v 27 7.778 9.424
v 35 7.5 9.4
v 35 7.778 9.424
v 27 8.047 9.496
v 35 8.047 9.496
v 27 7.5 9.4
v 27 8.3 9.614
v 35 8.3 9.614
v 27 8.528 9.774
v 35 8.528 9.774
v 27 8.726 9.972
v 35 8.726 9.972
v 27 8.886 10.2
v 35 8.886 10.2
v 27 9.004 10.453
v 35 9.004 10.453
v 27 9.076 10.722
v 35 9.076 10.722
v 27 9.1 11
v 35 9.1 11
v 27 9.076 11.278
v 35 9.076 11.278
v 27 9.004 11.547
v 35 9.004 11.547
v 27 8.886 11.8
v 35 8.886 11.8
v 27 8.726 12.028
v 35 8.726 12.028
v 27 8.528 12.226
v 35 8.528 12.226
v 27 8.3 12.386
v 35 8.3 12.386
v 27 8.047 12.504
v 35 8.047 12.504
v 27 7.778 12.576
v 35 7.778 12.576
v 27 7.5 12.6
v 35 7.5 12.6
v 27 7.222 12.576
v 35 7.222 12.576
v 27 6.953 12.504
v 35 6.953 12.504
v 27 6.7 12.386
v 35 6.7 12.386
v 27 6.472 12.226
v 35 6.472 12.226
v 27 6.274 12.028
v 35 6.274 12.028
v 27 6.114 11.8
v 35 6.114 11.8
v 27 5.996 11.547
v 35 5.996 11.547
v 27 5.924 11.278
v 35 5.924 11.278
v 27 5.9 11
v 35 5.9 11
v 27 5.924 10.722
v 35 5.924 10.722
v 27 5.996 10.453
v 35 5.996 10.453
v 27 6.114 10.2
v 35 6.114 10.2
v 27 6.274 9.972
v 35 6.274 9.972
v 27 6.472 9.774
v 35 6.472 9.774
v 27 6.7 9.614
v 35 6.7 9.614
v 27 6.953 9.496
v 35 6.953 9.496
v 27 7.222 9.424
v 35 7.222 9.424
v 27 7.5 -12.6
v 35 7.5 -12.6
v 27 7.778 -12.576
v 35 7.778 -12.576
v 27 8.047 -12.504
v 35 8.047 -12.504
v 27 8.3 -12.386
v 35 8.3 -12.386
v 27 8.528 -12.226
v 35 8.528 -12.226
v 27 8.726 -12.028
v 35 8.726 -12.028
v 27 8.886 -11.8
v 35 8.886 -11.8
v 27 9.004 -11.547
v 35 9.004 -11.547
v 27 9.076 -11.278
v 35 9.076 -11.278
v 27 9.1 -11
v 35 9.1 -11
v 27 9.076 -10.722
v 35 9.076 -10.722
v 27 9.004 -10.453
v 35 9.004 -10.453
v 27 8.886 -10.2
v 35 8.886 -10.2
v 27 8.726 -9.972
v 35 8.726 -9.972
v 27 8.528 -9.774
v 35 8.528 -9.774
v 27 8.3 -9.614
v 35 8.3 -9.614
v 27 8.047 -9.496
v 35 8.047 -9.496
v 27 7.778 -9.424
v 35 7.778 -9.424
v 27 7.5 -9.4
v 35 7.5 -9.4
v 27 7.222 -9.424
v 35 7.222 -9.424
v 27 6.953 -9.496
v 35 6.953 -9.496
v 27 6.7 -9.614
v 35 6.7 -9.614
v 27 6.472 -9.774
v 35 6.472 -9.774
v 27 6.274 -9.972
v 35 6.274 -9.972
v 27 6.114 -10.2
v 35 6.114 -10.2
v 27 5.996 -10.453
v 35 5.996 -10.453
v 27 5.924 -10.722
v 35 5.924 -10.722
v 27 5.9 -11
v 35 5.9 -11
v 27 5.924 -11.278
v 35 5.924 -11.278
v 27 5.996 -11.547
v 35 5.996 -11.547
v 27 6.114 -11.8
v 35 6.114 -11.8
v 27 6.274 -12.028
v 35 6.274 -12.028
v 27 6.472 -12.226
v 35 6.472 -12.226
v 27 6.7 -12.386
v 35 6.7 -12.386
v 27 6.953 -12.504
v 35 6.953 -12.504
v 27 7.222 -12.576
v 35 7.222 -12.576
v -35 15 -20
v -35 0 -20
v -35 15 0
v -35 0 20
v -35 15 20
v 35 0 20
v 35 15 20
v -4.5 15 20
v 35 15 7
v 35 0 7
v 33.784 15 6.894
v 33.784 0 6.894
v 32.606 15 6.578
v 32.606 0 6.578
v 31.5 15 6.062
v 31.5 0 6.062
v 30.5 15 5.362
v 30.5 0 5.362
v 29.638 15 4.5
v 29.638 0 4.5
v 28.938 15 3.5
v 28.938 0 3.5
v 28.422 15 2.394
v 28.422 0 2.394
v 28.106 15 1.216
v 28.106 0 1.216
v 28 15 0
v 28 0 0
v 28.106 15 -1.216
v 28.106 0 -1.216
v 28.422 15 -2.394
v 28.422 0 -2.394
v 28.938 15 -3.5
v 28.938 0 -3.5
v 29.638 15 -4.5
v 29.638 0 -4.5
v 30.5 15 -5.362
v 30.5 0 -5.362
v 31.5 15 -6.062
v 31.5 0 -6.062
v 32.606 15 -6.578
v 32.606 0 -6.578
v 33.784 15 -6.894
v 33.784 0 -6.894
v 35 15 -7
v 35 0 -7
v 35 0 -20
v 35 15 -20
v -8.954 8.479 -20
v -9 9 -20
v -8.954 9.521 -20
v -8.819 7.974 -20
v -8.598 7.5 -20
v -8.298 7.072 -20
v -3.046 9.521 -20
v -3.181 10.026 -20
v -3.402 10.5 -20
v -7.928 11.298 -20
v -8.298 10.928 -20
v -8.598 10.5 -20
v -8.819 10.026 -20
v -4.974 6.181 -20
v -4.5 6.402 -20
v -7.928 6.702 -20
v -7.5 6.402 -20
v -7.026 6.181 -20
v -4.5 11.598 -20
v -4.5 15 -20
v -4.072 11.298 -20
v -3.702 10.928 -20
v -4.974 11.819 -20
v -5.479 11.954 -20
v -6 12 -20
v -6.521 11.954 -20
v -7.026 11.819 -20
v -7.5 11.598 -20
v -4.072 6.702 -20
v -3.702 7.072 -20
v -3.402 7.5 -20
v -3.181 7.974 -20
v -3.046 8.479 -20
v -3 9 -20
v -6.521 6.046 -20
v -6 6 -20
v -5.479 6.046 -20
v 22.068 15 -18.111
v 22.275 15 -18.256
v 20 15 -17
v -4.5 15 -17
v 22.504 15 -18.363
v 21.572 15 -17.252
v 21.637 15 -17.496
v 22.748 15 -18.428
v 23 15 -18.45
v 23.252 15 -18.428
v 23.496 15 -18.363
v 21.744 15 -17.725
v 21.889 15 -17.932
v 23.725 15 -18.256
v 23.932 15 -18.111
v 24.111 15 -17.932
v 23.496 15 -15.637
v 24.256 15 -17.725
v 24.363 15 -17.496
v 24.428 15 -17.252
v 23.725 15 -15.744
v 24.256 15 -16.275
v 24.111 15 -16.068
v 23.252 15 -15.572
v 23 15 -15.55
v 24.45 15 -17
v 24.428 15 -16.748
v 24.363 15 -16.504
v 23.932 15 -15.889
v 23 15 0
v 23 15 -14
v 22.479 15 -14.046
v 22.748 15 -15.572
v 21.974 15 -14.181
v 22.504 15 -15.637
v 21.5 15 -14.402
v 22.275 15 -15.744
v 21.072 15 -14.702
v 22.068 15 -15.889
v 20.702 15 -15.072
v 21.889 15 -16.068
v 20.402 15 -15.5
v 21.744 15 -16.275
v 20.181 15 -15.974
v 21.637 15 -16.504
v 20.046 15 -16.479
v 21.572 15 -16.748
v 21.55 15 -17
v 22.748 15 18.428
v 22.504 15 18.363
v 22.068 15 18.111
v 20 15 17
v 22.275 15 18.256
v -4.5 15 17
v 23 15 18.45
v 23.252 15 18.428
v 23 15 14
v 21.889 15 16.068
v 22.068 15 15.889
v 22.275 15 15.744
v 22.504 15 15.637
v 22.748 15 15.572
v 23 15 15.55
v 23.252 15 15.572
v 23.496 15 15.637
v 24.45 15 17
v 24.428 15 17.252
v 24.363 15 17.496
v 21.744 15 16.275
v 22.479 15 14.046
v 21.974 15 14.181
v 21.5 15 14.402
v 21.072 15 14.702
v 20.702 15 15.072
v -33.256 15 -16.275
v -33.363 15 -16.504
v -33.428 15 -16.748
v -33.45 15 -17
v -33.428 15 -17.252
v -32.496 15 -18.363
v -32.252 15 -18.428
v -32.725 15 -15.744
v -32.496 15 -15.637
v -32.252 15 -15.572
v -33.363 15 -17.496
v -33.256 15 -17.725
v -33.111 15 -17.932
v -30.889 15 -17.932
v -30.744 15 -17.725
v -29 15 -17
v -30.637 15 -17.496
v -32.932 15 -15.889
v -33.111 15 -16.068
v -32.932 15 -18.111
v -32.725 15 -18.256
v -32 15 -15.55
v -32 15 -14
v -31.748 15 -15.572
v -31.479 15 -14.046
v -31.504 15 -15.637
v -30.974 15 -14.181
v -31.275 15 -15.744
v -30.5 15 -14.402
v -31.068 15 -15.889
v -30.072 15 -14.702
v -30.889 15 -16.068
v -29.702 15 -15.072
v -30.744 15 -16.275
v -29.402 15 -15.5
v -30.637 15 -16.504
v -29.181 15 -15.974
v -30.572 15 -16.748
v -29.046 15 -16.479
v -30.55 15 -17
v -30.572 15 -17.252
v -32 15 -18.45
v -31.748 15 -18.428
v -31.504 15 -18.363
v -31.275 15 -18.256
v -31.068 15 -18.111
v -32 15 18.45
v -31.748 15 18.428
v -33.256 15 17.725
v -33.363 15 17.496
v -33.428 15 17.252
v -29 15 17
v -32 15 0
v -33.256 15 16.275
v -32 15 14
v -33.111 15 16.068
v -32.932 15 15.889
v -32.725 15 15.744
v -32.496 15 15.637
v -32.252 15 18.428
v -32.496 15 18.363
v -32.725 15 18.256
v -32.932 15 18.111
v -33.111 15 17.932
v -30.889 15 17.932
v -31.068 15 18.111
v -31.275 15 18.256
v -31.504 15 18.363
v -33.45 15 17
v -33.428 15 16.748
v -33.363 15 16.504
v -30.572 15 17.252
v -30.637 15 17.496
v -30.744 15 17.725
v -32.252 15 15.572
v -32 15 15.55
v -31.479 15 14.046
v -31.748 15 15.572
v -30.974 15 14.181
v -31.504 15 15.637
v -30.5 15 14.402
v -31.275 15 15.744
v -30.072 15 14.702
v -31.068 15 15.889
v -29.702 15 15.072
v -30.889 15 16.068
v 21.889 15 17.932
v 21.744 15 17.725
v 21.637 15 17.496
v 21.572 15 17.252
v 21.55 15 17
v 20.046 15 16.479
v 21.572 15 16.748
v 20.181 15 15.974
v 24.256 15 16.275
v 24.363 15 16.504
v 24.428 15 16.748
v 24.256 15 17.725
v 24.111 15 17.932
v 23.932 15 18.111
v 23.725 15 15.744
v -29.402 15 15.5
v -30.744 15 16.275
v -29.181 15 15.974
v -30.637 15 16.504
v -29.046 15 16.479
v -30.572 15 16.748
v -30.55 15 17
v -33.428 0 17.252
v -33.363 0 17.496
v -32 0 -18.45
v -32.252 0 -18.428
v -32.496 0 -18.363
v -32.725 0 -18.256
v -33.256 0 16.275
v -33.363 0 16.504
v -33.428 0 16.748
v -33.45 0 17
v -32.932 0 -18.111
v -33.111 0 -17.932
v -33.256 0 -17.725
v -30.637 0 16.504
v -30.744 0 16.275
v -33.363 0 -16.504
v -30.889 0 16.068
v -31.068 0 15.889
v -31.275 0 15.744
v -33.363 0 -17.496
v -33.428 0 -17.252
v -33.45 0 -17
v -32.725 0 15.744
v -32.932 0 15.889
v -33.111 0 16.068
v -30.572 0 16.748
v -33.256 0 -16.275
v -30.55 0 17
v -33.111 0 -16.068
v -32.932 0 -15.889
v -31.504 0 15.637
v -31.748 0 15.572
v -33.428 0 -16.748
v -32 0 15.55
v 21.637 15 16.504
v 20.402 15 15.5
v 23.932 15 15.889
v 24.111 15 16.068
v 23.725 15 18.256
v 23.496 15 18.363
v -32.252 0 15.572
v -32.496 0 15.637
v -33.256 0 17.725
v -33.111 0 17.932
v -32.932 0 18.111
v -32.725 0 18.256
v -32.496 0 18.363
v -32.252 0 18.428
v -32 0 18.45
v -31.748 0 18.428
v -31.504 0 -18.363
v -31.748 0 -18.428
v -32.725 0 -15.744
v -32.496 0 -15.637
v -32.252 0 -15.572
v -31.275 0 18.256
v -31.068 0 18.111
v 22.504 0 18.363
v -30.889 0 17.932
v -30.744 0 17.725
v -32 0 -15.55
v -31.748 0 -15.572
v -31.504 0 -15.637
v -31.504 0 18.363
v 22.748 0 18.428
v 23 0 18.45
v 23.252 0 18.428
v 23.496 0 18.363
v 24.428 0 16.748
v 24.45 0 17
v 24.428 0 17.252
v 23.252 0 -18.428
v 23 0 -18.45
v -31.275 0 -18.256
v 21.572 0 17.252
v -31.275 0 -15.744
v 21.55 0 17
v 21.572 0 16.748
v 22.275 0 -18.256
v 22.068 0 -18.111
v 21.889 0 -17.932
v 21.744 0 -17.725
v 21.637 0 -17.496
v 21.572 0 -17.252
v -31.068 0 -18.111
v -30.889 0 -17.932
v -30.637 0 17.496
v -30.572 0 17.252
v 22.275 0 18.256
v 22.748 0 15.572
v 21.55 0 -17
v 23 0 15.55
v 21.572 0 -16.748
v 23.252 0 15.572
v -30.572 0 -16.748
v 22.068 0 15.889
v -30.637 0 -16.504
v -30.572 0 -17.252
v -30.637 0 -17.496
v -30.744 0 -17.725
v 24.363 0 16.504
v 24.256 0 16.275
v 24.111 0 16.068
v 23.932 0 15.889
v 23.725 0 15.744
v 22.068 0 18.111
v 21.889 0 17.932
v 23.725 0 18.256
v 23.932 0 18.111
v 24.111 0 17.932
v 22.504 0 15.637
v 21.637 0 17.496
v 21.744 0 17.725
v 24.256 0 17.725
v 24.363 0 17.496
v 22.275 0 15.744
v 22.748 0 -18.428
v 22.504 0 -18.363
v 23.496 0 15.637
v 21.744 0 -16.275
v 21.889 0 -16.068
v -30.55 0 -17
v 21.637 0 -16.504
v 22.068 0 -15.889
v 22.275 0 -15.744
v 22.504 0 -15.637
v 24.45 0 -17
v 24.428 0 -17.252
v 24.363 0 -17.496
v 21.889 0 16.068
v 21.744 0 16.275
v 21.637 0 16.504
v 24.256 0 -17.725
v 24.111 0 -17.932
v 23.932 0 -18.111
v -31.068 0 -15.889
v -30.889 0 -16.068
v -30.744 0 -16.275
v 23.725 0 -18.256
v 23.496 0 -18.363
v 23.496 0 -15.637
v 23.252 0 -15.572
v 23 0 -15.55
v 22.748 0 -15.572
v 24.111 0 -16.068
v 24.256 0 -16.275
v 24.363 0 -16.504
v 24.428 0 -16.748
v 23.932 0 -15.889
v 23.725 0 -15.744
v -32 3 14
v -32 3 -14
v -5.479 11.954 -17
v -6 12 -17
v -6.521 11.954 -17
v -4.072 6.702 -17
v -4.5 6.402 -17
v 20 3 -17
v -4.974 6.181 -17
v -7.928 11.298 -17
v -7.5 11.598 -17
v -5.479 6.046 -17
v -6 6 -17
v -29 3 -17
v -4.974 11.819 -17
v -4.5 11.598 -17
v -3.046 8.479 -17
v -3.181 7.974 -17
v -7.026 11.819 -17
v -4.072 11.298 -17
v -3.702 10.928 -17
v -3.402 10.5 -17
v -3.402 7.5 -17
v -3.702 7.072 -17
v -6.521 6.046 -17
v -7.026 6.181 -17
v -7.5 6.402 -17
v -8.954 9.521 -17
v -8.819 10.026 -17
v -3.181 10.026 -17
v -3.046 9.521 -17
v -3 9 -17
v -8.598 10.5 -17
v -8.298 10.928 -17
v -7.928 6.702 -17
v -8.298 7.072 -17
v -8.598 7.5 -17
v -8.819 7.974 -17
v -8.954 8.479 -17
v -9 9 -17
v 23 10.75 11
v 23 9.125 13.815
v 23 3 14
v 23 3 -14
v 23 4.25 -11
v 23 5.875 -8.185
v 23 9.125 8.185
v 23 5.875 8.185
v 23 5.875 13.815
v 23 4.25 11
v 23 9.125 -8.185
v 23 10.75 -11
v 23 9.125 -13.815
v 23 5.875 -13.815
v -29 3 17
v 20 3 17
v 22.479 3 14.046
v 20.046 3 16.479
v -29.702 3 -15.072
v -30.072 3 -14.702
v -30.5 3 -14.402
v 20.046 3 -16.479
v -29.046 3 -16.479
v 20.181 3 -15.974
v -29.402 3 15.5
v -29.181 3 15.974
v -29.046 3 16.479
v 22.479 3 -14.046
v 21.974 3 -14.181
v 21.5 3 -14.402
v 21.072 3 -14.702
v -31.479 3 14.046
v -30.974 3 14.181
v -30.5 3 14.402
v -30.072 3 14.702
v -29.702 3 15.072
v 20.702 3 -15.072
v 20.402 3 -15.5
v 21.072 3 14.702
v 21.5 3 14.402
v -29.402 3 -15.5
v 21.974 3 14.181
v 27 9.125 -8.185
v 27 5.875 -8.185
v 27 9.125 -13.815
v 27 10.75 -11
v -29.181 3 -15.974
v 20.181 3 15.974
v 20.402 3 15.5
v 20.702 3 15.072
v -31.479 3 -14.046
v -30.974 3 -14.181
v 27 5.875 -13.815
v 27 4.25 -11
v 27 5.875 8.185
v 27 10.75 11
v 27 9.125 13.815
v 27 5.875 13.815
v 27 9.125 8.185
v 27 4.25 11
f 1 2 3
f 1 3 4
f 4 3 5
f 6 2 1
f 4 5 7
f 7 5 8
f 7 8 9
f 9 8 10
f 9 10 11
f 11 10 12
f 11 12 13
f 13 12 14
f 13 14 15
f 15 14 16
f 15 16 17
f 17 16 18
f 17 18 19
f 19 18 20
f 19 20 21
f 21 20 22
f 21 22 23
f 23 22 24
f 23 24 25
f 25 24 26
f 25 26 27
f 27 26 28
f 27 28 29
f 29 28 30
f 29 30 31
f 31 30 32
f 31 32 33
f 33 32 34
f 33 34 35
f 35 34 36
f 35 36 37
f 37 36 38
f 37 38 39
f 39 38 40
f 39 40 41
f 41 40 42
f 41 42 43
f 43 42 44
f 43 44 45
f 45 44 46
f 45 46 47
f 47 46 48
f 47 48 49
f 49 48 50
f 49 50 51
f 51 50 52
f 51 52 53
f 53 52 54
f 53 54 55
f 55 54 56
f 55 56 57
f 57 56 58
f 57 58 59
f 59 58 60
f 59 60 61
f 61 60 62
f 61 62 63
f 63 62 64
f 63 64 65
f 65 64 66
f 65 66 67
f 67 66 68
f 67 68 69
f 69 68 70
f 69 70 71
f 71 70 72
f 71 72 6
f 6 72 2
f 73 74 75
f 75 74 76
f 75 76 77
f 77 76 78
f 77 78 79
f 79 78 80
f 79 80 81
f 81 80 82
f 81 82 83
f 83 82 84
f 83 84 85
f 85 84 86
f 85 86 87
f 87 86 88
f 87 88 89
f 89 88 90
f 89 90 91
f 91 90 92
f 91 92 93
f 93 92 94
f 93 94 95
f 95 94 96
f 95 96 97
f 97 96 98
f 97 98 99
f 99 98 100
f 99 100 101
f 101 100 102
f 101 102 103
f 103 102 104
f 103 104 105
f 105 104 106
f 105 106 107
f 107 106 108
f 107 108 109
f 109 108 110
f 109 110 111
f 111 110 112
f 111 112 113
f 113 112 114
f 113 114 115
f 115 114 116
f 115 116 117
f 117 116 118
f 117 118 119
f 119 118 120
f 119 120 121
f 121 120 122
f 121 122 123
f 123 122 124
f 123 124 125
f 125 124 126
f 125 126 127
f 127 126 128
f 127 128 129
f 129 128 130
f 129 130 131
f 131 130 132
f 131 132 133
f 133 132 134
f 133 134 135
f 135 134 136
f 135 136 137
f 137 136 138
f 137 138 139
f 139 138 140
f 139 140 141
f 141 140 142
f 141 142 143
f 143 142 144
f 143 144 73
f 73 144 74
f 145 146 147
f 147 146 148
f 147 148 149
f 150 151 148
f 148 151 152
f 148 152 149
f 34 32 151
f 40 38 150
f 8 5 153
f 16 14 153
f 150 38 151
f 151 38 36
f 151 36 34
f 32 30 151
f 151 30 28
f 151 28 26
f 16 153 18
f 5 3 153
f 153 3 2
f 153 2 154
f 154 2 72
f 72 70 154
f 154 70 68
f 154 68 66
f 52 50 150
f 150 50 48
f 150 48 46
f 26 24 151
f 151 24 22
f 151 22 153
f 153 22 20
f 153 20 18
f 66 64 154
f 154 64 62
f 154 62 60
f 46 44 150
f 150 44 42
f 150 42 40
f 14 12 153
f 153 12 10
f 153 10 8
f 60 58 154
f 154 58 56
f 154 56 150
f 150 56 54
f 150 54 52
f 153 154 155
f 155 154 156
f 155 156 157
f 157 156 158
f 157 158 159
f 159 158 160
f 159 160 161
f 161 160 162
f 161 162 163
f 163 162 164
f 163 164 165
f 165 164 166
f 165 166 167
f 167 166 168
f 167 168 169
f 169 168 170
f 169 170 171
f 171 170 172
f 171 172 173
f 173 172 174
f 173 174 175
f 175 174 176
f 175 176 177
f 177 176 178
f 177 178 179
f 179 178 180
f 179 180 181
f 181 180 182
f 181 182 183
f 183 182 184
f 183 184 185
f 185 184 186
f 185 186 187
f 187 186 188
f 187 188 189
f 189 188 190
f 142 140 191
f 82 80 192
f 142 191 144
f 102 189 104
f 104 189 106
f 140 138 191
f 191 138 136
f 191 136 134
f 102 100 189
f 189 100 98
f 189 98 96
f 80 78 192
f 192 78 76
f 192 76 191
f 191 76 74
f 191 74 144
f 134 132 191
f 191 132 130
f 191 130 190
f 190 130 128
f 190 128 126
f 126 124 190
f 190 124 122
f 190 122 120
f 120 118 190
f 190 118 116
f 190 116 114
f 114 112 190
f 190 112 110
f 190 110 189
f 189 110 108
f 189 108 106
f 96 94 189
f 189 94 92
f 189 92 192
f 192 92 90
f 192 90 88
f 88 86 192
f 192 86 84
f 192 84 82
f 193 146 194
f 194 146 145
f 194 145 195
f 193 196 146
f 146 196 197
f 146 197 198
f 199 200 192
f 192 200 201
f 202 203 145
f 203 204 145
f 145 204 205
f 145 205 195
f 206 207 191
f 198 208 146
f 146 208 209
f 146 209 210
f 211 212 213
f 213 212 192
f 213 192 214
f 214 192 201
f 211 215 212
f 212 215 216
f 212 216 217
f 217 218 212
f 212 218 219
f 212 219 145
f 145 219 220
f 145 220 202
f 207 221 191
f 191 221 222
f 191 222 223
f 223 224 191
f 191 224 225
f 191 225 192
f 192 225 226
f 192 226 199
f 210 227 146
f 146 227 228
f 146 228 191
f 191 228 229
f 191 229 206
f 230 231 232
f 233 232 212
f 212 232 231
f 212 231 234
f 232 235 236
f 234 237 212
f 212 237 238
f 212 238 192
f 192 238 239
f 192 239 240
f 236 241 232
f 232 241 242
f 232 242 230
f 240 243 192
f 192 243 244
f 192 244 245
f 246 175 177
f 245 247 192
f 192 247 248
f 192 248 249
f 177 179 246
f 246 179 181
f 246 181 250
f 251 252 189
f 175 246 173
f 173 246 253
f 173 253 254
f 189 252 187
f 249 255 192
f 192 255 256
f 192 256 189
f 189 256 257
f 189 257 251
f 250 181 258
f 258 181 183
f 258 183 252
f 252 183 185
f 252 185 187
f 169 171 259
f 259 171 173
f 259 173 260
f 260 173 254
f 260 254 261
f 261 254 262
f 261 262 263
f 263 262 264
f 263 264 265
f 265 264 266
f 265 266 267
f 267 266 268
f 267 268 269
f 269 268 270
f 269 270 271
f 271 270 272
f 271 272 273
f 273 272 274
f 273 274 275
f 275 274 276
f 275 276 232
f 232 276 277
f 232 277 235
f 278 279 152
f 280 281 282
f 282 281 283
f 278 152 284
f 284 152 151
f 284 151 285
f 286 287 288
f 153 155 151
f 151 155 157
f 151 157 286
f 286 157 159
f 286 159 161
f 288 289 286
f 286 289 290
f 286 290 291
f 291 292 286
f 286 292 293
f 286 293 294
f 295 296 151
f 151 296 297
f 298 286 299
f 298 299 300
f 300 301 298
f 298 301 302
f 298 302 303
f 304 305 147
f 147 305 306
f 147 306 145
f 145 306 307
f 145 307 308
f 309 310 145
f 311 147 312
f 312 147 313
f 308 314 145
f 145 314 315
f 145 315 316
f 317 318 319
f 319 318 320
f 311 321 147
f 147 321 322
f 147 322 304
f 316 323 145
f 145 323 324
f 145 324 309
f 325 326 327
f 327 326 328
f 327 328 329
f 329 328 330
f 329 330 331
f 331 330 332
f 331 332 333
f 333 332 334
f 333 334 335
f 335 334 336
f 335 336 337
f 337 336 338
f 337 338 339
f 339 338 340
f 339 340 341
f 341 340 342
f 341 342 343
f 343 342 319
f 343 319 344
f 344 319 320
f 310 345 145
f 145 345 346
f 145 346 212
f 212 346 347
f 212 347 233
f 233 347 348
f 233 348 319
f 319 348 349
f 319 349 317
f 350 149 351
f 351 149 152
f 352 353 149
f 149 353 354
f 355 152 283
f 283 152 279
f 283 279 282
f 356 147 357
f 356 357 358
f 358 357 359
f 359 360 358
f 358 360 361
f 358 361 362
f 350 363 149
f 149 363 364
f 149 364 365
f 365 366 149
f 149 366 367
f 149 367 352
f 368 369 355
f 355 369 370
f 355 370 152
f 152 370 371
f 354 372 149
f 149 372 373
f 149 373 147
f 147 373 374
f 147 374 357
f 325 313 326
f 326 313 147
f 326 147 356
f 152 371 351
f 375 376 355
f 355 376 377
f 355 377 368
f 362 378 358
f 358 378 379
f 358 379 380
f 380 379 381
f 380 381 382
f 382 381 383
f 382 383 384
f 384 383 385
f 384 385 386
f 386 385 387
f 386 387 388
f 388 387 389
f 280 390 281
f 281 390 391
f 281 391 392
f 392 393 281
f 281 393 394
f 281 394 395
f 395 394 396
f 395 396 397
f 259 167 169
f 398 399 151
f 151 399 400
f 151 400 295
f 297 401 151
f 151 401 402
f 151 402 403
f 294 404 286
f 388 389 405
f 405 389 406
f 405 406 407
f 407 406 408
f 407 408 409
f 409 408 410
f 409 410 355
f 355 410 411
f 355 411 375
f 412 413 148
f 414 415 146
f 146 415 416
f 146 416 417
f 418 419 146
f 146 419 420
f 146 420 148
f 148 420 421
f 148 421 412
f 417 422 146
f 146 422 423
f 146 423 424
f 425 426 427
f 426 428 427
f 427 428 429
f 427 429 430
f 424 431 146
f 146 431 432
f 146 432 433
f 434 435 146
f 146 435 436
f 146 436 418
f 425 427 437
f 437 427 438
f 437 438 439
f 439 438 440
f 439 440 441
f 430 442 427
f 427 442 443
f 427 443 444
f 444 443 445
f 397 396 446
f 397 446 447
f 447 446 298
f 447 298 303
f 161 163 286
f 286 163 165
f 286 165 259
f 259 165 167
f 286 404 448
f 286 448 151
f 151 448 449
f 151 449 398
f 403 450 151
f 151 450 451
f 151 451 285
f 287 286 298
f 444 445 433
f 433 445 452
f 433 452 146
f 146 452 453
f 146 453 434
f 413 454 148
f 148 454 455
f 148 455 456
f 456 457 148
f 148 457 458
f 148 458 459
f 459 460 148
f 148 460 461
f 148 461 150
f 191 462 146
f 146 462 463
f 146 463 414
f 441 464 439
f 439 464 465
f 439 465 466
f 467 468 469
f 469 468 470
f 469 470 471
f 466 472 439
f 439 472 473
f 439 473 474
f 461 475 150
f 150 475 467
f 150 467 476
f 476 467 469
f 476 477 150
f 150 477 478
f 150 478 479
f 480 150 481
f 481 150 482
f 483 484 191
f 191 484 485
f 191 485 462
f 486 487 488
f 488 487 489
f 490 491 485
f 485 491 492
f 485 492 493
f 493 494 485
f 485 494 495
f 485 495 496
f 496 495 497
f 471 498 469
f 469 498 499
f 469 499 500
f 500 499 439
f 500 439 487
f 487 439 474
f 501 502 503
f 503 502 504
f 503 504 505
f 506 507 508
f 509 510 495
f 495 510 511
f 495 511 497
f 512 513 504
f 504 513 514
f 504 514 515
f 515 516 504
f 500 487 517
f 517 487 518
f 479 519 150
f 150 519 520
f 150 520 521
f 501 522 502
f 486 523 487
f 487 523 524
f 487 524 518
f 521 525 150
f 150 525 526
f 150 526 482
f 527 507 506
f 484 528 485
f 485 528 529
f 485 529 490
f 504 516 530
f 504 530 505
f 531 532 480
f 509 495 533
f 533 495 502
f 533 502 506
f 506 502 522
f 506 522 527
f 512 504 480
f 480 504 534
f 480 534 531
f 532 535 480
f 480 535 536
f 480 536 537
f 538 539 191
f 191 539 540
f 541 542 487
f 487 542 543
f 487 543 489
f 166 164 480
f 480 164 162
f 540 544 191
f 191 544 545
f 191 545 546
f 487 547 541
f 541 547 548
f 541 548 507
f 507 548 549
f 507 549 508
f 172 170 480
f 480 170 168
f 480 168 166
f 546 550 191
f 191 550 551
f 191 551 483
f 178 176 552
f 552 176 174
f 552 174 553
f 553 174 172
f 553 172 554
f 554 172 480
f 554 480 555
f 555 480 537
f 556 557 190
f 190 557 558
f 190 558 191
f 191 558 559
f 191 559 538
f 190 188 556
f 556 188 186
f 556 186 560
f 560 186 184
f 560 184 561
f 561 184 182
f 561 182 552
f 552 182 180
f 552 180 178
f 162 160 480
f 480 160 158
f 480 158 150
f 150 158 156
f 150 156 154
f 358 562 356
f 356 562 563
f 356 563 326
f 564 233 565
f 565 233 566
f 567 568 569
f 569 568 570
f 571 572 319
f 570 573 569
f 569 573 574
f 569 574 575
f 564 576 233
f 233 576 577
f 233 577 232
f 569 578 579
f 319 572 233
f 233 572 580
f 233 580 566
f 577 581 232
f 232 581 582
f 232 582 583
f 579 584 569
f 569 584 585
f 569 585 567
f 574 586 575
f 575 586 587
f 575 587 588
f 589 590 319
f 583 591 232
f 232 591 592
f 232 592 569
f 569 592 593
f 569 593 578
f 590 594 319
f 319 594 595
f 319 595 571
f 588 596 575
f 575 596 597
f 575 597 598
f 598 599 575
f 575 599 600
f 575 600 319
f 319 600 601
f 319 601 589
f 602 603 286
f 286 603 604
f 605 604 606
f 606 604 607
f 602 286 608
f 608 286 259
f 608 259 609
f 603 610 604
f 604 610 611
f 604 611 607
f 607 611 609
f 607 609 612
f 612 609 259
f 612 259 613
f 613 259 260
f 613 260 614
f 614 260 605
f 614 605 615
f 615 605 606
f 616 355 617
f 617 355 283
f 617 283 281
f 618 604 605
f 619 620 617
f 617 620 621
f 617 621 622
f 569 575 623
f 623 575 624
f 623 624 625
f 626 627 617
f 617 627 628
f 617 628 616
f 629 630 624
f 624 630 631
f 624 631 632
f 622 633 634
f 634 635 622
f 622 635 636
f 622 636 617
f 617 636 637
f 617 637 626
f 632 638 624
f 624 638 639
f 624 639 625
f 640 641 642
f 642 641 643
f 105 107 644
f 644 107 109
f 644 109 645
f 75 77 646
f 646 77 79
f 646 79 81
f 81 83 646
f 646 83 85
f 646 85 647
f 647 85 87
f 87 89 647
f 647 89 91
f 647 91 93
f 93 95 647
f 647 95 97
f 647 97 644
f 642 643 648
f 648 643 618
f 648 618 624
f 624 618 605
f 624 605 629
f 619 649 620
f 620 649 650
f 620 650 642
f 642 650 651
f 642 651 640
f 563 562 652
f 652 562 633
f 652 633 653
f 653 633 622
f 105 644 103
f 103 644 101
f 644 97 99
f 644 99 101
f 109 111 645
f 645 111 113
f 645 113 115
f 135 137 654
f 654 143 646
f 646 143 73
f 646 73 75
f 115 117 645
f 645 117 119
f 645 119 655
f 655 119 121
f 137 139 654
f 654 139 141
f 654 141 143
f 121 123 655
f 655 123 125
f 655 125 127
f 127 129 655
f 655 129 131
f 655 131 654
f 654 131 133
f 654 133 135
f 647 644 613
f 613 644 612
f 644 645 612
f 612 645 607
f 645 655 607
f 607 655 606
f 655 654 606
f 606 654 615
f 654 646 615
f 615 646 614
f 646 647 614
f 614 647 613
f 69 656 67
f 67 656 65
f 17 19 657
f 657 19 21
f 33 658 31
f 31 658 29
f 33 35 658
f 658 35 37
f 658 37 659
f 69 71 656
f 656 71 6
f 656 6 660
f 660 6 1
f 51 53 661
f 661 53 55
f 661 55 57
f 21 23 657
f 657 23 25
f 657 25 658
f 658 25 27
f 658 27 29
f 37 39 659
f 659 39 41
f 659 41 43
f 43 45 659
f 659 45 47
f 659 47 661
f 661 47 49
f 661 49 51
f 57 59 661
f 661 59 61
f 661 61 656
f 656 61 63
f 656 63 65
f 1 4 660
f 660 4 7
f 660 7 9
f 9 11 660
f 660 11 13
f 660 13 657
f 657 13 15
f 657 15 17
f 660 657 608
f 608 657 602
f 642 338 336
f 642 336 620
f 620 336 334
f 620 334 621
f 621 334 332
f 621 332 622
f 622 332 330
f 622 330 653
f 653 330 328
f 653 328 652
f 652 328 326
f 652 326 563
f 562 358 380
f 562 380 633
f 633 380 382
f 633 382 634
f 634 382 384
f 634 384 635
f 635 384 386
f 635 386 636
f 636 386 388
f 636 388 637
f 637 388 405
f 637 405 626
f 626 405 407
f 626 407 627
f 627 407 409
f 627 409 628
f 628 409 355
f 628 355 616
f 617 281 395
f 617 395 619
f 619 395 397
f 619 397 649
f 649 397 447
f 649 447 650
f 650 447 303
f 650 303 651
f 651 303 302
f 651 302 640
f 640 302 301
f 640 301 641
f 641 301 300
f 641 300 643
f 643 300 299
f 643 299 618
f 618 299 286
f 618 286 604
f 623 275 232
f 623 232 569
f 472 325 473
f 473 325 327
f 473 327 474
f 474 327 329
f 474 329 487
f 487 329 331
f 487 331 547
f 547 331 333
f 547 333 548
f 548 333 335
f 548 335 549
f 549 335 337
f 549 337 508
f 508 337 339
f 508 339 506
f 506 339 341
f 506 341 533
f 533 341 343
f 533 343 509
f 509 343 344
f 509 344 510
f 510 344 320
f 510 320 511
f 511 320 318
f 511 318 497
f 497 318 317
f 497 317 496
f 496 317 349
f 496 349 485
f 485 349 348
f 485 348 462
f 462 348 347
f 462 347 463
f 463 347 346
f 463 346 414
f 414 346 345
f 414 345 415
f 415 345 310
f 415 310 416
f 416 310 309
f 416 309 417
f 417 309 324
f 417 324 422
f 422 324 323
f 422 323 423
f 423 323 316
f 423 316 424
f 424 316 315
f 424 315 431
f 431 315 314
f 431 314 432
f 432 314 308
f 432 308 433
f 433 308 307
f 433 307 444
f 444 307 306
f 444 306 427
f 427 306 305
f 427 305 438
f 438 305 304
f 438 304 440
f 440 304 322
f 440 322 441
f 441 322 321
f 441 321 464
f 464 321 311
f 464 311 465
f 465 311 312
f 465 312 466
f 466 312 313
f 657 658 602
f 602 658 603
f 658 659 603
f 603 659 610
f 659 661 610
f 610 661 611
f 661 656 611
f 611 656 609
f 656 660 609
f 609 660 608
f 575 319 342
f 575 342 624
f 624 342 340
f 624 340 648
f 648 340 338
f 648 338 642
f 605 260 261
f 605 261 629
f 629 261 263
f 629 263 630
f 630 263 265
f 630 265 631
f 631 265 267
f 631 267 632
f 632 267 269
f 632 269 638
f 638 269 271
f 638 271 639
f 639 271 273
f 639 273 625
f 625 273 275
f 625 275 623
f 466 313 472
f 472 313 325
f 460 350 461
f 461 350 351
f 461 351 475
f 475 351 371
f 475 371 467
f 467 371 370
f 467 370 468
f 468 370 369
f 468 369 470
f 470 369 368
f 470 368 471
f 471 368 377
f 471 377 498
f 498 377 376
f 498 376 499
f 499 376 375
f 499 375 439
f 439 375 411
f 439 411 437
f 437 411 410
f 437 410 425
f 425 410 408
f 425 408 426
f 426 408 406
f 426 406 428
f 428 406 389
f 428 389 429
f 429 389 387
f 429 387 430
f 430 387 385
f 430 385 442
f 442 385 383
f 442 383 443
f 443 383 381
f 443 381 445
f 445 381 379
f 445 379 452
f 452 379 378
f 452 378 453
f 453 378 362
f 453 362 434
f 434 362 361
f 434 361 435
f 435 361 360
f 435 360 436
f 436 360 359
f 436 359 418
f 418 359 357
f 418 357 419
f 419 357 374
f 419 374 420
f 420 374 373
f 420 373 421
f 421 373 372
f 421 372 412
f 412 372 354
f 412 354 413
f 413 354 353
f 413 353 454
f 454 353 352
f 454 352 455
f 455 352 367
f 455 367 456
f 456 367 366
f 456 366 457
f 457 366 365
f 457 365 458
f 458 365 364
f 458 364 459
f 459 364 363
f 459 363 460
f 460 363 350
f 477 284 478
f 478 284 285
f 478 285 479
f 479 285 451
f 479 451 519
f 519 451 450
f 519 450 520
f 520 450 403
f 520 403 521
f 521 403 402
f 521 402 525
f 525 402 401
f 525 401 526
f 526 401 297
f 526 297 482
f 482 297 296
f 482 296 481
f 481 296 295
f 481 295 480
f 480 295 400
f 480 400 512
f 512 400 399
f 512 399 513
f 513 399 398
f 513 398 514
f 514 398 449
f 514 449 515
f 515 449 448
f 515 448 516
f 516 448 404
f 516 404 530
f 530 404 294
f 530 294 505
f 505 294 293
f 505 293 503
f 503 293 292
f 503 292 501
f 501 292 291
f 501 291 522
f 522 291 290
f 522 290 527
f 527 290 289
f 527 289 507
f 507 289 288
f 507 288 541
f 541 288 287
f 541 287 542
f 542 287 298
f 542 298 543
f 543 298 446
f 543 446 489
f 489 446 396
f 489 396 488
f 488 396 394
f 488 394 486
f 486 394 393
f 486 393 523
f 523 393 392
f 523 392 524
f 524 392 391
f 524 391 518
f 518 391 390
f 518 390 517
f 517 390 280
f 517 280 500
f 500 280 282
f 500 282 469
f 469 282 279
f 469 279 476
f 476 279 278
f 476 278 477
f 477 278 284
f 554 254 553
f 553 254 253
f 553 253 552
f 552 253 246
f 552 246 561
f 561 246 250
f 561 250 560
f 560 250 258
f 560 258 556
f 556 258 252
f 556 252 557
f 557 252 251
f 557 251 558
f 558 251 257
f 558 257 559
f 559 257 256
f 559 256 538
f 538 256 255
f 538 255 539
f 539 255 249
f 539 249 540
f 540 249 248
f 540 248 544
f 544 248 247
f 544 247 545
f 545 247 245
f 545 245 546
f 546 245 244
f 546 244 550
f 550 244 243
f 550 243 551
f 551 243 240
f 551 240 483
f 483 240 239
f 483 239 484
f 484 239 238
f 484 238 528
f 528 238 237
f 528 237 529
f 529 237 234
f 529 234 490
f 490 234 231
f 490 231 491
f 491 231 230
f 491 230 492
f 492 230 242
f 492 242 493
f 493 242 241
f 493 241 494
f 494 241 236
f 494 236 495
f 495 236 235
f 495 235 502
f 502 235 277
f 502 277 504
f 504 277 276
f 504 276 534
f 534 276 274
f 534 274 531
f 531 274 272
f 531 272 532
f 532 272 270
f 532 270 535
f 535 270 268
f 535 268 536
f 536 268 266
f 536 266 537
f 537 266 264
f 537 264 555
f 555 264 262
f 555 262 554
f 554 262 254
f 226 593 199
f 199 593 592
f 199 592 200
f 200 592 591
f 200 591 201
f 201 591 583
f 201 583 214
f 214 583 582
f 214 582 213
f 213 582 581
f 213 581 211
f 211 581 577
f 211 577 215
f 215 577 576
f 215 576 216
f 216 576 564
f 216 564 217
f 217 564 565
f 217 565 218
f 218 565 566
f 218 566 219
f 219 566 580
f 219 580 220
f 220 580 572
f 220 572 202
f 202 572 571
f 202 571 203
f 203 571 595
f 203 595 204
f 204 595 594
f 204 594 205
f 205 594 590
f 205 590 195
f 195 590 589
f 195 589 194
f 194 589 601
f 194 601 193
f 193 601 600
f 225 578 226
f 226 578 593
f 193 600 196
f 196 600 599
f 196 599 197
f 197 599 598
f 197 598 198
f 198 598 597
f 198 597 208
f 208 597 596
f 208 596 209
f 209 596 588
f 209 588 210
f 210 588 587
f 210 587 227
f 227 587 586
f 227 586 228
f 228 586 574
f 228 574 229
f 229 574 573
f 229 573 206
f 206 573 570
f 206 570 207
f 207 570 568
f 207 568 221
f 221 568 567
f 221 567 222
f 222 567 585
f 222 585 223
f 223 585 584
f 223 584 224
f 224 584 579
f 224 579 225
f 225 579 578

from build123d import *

# Parameters (mm, degrees)
BOSS_EXTRUDE1_DEPTH = 15
SKETCH2_W           = 55
SKETCH2_H           = 34
CUT_EXTRUDE1_DEPTH  = 12
CUT_EXTRUDE2_REACH  = 72
SKETCH4_R           = 1.6
CUT_EXTRUDE3_DEPTH  = 4
BOSS_EXTRUDE3_REACH = 17
SKETCH7_R           = 1.45
CUT_EXTRUDE4_DEPTH  = 16
SKETCH8_R           = 3
CUT_EXTRUDE5_DEPTH  = 4


with BuildPart() as part:
    # Sketch1 → Boss-Extrude1 (new body)
    with BuildSketch(Plane(origin=(0, 0, 0), x_dir=(1, 0, 0), z_dir=(0, 1, 0))):
        with BuildLine():
            Line((35, 20), (35, 7))
            ThreePointArc((35, 7), (28, 0), (35, -7))
            Line((35, -7), (35, -20))
            Line((35, -20), (-35, -20))
            Line((-35, -20), (-35, 20))
            Line((-35, 20), (35, 20))
        make_face()
    extrude(amount=BOSS_EXTRUDE1_DEPTH)

    # Sketch2 → Cut-Extrude1 (cut)
    with BuildSketch(Plane(origin=(0, 15, 0), x_dir=(1, 0, 0), z_dir=(0, 1, 0))):
        with Locations((-4.5, 0)):
            Rectangle(SKETCH2_W, SKETCH2_H)
    extrude(amount=-CUT_EXTRUDE1_DEPTH, mode=Mode.SUBTRACT)

    # Sketch4 → Cut-Extrude2 (cut, up to next)
    with BuildSketch(Plane(origin=(35, 0, 0), x_dir=(0, 0, -1), z_dir=(1, 0, 0)), mode=Mode.PRIVATE) as cut_extrude2_sk1:
        with Locations((11, 7.5)):
            Circle(SKETCH4_R)
    cut_extrude2_tool1 = extrude(cut_extrude2_sk1.sketch, amount=-CUT_EXTRUDE2_REACH, mode=Mode.PRIVATE) & part.part
    add(cut_extrude2_tool1.solids().sort_by_distance((35, 7.5, -11))[0], mode=Mode.SUBTRACT)
    # Sketch4 → Cut-Extrude2 (cut, up to next)
    with BuildSketch(Plane(origin=(35, 0, 0), x_dir=(0, 0, -1), z_dir=(1, 0, 0)), mode=Mode.PRIVATE) as cut_extrude2_sk2:
        with Locations((-11, 7.5)):
            Circle(SKETCH4_R)
    cut_extrude2_tool2 = extrude(cut_extrude2_sk2.sketch, amount=-CUT_EXTRUDE2_REACH, mode=Mode.PRIVATE) & part.part
    add(cut_extrude2_tool2.solids().sort_by_distance((35, 7.5, 11))[0], mode=Mode.SUBTRACT)

    # Sketch5 → Cut-Extrude3 (cut)
    with BuildSketch(Plane.ZY.offset(-23)):
        Polygon((-11, 10.75), (-13.814582562, 9.125), (-13.814582562, 5.875), (-11, 4.25), (-8.185417438, 5.875), (-8.185417438, 9.125), align=None)
        Polygon((8.185417438, 9.125), (8.185417438, 5.875), (11, 4.25), (13.814582562, 5.875), (13.814582562, 9.125), (11, 10.75), align=None)
    extrude(amount=-CUT_EXTRUDE3_DEPTH, mode=Mode.SUBTRACT)

    # Sketch6 → Boss-Extrude3 (add, up to next)
    with BuildSketch(Plane(origin=(0, 15, 0), x_dir=(1, 0, 0), z_dir=(0, 1, 0)), mode=Mode.PRIVATE) as boss_extrude3_sk1:
        with BuildLine():
            Line((-32, -14), (-32, -17))
            Line((-32, -17), (-29, -17))
            ThreePointArc((-29, -17), (-29.878679656, -14.878679656), (-32, -14))
        make_face()
    boss_extrude3_tool1 = extrude(boss_extrude3_sk1.sketch, amount=-BOSS_EXTRUDE3_REACH, mode=Mode.PRIVATE) - part.part
    add(boss_extrude3_tool1.solids().sort_by_distance((-30.72676, 15, 15.72676))[0])
    # Sketch6 → Boss-Extrude3 (add, up to next)
    with BuildSketch(Plane(origin=(0, 15, 0), x_dir=(1, 0, 0), z_dir=(0, 1, 0)), mode=Mode.PRIVATE) as boss_extrude3_sk2:
        with BuildLine():
            Line((23, -14), (23, -17))
            Line((23, -17), (20, -17))
            ThreePointArc((20, -17), (20.878679656, -14.878679656), (23, -14))
        make_face()
    boss_extrude3_tool2 = extrude(boss_extrude3_sk2.sketch, amount=-BOSS_EXTRUDE3_REACH, mode=Mode.PRIVATE) - part.part
    add(boss_extrude3_tool2.solids().sort_by_distance((21.72676, 15, 15.72676))[0])
    # Sketch6 → Boss-Extrude3 (add, up to next)
    with BuildSketch(Plane(origin=(0, 15, 0), x_dir=(1, 0, 0), z_dir=(0, 1, 0)), mode=Mode.PRIVATE) as boss_extrude3_sk3:
        with BuildLine():
            Line((20, 17), (23, 17))
            Line((23, 17), (23, 14))
            ThreePointArc((23, 14), (20.878679656, 14.878679656), (20, 17))
        make_face()
    boss_extrude3_tool3 = extrude(boss_extrude3_sk3.sketch, amount=-BOSS_EXTRUDE3_REACH, mode=Mode.PRIVATE) - part.part
    add(boss_extrude3_tool3.solids().sort_by_distance((21.72676, 15, -15.72676))[0])
    # Sketch6 → Boss-Extrude3 (add, up to next)
    with BuildSketch(Plane(origin=(0, 15, 0), x_dir=(1, 0, 0), z_dir=(0, 1, 0)), mode=Mode.PRIVATE) as boss_extrude3_sk4:
        with BuildLine():
            Line((-32, 14), (-32, 17))
            Line((-32, 17), (-29, 17))
            ThreePointArc((-29, 17), (-29.878679656, 14.878679656), (-32, 14))
        make_face()
    boss_extrude3_tool4 = extrude(boss_extrude3_sk4.sketch, amount=-BOSS_EXTRUDE3_REACH, mode=Mode.PRIVATE) - part.part
    add(boss_extrude3_tool4.solids().sort_by_distance((-30.72676, 15, -15.72676))[0])

    # Sketch7 → Cut-Extrude4 (cut, through all)
    with BuildSketch(Plane(origin=(0, 15, 0), x_dir=(1, 0, 0), z_dir=(0, 1, 0))):
        with Locations((-32, 17)):
            Circle(SKETCH7_R)
        with Locations((23, 17)):
            Circle(SKETCH7_R)
        with Locations((23, -17)):
            Circle(SKETCH7_R)
        with Locations((-32, -17)):
            Circle(SKETCH7_R)
    extrude(amount=-CUT_EXTRUDE4_DEPTH, mode=Mode.SUBTRACT)

    # Sketch8 → Cut-Extrude5 (cut, through all)
    with BuildSketch(Plane.XY.offset(-17)):
        with Locations((-6, 9)):
            Circle(SKETCH8_R)
    extrude(amount=-CUT_EXTRUDE5_DEPTH, mode=Mode.SUBTRACT)


solid = part.part
